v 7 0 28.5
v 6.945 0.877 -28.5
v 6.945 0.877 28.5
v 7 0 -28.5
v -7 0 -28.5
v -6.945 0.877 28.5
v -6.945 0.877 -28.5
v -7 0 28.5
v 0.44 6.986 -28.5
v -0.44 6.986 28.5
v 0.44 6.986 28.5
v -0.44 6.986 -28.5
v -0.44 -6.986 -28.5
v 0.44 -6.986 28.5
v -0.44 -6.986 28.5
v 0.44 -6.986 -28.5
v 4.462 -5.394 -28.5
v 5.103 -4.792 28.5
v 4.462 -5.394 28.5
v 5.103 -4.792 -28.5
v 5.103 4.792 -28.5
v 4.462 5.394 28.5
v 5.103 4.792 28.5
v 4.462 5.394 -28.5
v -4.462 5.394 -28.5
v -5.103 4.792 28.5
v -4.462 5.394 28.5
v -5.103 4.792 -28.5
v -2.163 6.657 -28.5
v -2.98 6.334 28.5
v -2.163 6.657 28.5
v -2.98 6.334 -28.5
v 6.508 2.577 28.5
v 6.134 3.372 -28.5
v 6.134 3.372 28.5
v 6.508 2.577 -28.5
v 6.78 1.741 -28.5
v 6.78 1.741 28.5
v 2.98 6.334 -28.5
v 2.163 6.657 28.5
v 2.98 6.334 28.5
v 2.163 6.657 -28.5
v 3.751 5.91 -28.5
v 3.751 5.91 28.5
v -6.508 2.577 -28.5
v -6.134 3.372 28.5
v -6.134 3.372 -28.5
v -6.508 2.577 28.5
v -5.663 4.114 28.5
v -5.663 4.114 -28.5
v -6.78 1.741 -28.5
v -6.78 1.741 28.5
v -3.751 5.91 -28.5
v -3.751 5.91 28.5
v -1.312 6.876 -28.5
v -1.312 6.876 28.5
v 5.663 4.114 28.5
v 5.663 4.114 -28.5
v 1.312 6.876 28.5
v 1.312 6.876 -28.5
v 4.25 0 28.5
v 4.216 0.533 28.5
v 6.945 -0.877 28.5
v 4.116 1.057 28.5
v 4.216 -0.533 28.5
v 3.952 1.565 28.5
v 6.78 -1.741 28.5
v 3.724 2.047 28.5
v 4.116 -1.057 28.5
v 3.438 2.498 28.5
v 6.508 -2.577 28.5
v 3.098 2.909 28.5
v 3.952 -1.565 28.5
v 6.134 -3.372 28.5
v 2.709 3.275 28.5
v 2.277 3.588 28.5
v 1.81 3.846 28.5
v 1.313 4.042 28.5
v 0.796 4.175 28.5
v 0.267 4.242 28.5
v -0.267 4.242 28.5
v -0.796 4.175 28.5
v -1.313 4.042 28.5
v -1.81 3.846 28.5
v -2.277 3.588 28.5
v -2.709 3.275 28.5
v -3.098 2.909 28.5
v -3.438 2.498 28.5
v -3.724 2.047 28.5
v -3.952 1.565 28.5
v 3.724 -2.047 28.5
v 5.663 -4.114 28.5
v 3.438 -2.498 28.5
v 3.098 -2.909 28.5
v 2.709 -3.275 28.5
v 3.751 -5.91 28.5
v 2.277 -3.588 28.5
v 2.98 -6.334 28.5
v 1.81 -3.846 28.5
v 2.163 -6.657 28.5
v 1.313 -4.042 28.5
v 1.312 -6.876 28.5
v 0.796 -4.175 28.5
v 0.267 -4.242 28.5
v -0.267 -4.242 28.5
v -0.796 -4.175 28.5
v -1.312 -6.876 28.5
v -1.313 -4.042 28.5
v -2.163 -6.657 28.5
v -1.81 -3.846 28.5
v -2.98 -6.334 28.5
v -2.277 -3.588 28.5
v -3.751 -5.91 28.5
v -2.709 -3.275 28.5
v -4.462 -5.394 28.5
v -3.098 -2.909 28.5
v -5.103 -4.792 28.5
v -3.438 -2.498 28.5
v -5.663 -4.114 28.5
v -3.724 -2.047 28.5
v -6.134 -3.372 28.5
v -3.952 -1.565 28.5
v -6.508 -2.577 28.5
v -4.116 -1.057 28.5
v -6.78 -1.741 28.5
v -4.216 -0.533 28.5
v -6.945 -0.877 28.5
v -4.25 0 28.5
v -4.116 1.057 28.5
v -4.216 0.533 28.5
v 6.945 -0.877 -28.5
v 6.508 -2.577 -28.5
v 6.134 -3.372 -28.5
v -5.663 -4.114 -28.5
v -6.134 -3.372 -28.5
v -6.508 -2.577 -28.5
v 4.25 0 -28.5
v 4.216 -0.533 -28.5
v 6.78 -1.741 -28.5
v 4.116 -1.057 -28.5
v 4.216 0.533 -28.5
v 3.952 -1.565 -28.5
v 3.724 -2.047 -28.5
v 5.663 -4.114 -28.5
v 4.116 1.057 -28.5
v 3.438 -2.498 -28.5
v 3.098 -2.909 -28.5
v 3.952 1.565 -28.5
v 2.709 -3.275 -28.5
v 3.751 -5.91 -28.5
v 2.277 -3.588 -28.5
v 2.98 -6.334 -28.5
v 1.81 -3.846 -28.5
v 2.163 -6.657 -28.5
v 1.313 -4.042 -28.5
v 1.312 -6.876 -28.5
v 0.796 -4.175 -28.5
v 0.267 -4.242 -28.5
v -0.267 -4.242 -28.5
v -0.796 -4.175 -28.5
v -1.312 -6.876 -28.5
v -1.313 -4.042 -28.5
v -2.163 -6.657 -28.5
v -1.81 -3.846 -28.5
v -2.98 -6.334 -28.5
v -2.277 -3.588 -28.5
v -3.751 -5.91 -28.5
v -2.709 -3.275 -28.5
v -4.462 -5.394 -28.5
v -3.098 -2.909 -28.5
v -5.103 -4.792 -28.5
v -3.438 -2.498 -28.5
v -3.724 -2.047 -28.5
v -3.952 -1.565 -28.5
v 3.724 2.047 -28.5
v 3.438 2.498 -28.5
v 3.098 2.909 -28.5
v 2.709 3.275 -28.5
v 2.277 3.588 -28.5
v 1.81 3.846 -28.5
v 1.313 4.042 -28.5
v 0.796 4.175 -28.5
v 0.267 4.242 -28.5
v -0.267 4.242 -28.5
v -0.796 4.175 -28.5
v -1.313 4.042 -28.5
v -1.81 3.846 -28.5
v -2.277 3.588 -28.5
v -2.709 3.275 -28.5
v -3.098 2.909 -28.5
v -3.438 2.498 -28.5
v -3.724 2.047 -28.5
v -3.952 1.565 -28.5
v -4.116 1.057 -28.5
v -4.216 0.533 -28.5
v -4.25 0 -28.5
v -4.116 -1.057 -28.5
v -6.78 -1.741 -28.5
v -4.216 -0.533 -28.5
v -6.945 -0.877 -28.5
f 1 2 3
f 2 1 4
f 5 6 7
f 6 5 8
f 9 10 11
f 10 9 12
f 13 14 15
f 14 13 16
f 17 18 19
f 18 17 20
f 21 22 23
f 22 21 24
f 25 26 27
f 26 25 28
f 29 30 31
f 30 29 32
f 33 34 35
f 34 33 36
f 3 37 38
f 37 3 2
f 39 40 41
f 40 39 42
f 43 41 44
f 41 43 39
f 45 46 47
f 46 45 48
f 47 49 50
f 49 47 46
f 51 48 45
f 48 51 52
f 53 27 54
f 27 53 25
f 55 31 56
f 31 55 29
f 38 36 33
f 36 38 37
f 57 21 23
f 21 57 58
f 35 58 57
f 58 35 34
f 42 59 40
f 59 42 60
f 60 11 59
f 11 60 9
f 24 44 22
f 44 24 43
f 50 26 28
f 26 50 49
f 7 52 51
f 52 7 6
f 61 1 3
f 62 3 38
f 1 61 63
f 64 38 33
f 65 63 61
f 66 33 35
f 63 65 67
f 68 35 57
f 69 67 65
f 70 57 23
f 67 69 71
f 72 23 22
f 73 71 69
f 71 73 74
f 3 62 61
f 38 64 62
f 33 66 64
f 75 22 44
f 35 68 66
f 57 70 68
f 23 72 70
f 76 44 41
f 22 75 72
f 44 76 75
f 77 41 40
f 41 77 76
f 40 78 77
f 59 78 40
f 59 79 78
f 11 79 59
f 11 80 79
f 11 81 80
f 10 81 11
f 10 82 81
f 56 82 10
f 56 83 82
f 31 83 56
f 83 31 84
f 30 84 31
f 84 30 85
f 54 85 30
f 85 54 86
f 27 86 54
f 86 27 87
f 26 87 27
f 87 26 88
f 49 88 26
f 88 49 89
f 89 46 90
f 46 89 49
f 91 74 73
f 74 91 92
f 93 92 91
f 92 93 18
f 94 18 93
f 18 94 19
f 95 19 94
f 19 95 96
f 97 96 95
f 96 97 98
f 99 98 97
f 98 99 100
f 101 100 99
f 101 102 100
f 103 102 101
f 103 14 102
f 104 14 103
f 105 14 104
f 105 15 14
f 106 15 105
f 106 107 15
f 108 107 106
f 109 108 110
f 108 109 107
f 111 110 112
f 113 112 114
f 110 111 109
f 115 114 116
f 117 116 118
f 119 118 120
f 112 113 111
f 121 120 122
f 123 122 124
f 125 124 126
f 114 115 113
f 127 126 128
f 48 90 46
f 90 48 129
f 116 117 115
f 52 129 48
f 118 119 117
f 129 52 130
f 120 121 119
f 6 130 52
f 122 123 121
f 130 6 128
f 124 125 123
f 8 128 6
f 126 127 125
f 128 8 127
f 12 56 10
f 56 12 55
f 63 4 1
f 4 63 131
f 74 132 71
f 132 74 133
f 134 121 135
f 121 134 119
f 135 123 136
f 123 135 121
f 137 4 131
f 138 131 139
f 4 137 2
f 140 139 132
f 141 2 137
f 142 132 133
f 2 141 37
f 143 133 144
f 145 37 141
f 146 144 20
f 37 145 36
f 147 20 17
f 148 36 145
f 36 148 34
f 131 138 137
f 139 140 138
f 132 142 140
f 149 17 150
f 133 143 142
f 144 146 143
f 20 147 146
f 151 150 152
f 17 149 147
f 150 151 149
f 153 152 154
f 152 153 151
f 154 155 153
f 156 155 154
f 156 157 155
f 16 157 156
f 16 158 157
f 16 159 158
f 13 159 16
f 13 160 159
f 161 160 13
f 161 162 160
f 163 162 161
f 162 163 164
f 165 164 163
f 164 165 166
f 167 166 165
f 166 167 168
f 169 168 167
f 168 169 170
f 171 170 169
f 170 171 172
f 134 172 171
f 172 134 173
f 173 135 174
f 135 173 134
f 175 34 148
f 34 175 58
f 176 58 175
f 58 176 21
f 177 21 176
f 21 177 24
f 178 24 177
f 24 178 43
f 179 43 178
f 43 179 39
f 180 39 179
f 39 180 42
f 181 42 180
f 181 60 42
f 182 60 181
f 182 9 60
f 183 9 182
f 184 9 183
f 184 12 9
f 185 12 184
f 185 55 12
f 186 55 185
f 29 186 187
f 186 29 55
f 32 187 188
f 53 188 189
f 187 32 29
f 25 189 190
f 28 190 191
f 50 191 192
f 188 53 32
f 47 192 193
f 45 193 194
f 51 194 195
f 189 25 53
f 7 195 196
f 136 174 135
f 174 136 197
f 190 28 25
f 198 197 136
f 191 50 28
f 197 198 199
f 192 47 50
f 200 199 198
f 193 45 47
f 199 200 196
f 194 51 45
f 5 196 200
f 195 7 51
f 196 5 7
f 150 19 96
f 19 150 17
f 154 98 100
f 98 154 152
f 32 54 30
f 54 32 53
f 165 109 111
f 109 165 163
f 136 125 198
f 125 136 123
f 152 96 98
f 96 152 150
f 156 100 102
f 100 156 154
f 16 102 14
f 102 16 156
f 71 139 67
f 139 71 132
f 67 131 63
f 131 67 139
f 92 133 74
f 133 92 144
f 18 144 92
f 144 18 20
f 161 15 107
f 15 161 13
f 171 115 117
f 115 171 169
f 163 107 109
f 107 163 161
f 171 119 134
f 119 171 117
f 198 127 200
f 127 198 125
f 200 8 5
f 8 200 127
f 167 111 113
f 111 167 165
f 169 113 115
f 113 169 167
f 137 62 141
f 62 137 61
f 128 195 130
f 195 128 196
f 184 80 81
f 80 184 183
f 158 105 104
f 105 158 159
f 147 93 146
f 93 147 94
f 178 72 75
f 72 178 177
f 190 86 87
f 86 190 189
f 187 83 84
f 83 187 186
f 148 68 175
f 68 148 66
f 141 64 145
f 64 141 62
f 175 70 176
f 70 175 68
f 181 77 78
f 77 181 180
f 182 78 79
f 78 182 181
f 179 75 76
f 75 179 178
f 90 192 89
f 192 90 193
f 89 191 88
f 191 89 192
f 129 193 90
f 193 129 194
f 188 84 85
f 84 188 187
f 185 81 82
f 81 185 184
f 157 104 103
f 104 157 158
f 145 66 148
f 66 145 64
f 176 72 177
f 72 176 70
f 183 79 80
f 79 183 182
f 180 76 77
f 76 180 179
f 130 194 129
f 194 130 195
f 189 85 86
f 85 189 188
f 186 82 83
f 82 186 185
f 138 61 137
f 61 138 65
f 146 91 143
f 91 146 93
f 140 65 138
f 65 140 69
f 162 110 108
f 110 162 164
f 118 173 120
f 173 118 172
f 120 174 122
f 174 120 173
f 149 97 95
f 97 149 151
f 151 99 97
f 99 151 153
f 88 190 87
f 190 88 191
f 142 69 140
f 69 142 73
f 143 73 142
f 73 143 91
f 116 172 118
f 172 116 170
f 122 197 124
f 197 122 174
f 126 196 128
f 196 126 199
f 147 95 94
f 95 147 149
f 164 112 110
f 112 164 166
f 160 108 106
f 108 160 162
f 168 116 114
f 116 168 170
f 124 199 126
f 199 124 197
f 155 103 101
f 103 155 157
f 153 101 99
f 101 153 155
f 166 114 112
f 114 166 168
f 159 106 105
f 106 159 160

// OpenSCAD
$fn = 50;


difference() {
	union() {
		translate(v = [0, 0, -28.5000000000]) {
			cylinder(h = 57, r = 7.0000000000);
		}
	}
	union() {
		translate(v = [0, 0, -100.0000000000]) {
			cylinder(h = 200, r = 4.2500000000);
		}
	}
}
